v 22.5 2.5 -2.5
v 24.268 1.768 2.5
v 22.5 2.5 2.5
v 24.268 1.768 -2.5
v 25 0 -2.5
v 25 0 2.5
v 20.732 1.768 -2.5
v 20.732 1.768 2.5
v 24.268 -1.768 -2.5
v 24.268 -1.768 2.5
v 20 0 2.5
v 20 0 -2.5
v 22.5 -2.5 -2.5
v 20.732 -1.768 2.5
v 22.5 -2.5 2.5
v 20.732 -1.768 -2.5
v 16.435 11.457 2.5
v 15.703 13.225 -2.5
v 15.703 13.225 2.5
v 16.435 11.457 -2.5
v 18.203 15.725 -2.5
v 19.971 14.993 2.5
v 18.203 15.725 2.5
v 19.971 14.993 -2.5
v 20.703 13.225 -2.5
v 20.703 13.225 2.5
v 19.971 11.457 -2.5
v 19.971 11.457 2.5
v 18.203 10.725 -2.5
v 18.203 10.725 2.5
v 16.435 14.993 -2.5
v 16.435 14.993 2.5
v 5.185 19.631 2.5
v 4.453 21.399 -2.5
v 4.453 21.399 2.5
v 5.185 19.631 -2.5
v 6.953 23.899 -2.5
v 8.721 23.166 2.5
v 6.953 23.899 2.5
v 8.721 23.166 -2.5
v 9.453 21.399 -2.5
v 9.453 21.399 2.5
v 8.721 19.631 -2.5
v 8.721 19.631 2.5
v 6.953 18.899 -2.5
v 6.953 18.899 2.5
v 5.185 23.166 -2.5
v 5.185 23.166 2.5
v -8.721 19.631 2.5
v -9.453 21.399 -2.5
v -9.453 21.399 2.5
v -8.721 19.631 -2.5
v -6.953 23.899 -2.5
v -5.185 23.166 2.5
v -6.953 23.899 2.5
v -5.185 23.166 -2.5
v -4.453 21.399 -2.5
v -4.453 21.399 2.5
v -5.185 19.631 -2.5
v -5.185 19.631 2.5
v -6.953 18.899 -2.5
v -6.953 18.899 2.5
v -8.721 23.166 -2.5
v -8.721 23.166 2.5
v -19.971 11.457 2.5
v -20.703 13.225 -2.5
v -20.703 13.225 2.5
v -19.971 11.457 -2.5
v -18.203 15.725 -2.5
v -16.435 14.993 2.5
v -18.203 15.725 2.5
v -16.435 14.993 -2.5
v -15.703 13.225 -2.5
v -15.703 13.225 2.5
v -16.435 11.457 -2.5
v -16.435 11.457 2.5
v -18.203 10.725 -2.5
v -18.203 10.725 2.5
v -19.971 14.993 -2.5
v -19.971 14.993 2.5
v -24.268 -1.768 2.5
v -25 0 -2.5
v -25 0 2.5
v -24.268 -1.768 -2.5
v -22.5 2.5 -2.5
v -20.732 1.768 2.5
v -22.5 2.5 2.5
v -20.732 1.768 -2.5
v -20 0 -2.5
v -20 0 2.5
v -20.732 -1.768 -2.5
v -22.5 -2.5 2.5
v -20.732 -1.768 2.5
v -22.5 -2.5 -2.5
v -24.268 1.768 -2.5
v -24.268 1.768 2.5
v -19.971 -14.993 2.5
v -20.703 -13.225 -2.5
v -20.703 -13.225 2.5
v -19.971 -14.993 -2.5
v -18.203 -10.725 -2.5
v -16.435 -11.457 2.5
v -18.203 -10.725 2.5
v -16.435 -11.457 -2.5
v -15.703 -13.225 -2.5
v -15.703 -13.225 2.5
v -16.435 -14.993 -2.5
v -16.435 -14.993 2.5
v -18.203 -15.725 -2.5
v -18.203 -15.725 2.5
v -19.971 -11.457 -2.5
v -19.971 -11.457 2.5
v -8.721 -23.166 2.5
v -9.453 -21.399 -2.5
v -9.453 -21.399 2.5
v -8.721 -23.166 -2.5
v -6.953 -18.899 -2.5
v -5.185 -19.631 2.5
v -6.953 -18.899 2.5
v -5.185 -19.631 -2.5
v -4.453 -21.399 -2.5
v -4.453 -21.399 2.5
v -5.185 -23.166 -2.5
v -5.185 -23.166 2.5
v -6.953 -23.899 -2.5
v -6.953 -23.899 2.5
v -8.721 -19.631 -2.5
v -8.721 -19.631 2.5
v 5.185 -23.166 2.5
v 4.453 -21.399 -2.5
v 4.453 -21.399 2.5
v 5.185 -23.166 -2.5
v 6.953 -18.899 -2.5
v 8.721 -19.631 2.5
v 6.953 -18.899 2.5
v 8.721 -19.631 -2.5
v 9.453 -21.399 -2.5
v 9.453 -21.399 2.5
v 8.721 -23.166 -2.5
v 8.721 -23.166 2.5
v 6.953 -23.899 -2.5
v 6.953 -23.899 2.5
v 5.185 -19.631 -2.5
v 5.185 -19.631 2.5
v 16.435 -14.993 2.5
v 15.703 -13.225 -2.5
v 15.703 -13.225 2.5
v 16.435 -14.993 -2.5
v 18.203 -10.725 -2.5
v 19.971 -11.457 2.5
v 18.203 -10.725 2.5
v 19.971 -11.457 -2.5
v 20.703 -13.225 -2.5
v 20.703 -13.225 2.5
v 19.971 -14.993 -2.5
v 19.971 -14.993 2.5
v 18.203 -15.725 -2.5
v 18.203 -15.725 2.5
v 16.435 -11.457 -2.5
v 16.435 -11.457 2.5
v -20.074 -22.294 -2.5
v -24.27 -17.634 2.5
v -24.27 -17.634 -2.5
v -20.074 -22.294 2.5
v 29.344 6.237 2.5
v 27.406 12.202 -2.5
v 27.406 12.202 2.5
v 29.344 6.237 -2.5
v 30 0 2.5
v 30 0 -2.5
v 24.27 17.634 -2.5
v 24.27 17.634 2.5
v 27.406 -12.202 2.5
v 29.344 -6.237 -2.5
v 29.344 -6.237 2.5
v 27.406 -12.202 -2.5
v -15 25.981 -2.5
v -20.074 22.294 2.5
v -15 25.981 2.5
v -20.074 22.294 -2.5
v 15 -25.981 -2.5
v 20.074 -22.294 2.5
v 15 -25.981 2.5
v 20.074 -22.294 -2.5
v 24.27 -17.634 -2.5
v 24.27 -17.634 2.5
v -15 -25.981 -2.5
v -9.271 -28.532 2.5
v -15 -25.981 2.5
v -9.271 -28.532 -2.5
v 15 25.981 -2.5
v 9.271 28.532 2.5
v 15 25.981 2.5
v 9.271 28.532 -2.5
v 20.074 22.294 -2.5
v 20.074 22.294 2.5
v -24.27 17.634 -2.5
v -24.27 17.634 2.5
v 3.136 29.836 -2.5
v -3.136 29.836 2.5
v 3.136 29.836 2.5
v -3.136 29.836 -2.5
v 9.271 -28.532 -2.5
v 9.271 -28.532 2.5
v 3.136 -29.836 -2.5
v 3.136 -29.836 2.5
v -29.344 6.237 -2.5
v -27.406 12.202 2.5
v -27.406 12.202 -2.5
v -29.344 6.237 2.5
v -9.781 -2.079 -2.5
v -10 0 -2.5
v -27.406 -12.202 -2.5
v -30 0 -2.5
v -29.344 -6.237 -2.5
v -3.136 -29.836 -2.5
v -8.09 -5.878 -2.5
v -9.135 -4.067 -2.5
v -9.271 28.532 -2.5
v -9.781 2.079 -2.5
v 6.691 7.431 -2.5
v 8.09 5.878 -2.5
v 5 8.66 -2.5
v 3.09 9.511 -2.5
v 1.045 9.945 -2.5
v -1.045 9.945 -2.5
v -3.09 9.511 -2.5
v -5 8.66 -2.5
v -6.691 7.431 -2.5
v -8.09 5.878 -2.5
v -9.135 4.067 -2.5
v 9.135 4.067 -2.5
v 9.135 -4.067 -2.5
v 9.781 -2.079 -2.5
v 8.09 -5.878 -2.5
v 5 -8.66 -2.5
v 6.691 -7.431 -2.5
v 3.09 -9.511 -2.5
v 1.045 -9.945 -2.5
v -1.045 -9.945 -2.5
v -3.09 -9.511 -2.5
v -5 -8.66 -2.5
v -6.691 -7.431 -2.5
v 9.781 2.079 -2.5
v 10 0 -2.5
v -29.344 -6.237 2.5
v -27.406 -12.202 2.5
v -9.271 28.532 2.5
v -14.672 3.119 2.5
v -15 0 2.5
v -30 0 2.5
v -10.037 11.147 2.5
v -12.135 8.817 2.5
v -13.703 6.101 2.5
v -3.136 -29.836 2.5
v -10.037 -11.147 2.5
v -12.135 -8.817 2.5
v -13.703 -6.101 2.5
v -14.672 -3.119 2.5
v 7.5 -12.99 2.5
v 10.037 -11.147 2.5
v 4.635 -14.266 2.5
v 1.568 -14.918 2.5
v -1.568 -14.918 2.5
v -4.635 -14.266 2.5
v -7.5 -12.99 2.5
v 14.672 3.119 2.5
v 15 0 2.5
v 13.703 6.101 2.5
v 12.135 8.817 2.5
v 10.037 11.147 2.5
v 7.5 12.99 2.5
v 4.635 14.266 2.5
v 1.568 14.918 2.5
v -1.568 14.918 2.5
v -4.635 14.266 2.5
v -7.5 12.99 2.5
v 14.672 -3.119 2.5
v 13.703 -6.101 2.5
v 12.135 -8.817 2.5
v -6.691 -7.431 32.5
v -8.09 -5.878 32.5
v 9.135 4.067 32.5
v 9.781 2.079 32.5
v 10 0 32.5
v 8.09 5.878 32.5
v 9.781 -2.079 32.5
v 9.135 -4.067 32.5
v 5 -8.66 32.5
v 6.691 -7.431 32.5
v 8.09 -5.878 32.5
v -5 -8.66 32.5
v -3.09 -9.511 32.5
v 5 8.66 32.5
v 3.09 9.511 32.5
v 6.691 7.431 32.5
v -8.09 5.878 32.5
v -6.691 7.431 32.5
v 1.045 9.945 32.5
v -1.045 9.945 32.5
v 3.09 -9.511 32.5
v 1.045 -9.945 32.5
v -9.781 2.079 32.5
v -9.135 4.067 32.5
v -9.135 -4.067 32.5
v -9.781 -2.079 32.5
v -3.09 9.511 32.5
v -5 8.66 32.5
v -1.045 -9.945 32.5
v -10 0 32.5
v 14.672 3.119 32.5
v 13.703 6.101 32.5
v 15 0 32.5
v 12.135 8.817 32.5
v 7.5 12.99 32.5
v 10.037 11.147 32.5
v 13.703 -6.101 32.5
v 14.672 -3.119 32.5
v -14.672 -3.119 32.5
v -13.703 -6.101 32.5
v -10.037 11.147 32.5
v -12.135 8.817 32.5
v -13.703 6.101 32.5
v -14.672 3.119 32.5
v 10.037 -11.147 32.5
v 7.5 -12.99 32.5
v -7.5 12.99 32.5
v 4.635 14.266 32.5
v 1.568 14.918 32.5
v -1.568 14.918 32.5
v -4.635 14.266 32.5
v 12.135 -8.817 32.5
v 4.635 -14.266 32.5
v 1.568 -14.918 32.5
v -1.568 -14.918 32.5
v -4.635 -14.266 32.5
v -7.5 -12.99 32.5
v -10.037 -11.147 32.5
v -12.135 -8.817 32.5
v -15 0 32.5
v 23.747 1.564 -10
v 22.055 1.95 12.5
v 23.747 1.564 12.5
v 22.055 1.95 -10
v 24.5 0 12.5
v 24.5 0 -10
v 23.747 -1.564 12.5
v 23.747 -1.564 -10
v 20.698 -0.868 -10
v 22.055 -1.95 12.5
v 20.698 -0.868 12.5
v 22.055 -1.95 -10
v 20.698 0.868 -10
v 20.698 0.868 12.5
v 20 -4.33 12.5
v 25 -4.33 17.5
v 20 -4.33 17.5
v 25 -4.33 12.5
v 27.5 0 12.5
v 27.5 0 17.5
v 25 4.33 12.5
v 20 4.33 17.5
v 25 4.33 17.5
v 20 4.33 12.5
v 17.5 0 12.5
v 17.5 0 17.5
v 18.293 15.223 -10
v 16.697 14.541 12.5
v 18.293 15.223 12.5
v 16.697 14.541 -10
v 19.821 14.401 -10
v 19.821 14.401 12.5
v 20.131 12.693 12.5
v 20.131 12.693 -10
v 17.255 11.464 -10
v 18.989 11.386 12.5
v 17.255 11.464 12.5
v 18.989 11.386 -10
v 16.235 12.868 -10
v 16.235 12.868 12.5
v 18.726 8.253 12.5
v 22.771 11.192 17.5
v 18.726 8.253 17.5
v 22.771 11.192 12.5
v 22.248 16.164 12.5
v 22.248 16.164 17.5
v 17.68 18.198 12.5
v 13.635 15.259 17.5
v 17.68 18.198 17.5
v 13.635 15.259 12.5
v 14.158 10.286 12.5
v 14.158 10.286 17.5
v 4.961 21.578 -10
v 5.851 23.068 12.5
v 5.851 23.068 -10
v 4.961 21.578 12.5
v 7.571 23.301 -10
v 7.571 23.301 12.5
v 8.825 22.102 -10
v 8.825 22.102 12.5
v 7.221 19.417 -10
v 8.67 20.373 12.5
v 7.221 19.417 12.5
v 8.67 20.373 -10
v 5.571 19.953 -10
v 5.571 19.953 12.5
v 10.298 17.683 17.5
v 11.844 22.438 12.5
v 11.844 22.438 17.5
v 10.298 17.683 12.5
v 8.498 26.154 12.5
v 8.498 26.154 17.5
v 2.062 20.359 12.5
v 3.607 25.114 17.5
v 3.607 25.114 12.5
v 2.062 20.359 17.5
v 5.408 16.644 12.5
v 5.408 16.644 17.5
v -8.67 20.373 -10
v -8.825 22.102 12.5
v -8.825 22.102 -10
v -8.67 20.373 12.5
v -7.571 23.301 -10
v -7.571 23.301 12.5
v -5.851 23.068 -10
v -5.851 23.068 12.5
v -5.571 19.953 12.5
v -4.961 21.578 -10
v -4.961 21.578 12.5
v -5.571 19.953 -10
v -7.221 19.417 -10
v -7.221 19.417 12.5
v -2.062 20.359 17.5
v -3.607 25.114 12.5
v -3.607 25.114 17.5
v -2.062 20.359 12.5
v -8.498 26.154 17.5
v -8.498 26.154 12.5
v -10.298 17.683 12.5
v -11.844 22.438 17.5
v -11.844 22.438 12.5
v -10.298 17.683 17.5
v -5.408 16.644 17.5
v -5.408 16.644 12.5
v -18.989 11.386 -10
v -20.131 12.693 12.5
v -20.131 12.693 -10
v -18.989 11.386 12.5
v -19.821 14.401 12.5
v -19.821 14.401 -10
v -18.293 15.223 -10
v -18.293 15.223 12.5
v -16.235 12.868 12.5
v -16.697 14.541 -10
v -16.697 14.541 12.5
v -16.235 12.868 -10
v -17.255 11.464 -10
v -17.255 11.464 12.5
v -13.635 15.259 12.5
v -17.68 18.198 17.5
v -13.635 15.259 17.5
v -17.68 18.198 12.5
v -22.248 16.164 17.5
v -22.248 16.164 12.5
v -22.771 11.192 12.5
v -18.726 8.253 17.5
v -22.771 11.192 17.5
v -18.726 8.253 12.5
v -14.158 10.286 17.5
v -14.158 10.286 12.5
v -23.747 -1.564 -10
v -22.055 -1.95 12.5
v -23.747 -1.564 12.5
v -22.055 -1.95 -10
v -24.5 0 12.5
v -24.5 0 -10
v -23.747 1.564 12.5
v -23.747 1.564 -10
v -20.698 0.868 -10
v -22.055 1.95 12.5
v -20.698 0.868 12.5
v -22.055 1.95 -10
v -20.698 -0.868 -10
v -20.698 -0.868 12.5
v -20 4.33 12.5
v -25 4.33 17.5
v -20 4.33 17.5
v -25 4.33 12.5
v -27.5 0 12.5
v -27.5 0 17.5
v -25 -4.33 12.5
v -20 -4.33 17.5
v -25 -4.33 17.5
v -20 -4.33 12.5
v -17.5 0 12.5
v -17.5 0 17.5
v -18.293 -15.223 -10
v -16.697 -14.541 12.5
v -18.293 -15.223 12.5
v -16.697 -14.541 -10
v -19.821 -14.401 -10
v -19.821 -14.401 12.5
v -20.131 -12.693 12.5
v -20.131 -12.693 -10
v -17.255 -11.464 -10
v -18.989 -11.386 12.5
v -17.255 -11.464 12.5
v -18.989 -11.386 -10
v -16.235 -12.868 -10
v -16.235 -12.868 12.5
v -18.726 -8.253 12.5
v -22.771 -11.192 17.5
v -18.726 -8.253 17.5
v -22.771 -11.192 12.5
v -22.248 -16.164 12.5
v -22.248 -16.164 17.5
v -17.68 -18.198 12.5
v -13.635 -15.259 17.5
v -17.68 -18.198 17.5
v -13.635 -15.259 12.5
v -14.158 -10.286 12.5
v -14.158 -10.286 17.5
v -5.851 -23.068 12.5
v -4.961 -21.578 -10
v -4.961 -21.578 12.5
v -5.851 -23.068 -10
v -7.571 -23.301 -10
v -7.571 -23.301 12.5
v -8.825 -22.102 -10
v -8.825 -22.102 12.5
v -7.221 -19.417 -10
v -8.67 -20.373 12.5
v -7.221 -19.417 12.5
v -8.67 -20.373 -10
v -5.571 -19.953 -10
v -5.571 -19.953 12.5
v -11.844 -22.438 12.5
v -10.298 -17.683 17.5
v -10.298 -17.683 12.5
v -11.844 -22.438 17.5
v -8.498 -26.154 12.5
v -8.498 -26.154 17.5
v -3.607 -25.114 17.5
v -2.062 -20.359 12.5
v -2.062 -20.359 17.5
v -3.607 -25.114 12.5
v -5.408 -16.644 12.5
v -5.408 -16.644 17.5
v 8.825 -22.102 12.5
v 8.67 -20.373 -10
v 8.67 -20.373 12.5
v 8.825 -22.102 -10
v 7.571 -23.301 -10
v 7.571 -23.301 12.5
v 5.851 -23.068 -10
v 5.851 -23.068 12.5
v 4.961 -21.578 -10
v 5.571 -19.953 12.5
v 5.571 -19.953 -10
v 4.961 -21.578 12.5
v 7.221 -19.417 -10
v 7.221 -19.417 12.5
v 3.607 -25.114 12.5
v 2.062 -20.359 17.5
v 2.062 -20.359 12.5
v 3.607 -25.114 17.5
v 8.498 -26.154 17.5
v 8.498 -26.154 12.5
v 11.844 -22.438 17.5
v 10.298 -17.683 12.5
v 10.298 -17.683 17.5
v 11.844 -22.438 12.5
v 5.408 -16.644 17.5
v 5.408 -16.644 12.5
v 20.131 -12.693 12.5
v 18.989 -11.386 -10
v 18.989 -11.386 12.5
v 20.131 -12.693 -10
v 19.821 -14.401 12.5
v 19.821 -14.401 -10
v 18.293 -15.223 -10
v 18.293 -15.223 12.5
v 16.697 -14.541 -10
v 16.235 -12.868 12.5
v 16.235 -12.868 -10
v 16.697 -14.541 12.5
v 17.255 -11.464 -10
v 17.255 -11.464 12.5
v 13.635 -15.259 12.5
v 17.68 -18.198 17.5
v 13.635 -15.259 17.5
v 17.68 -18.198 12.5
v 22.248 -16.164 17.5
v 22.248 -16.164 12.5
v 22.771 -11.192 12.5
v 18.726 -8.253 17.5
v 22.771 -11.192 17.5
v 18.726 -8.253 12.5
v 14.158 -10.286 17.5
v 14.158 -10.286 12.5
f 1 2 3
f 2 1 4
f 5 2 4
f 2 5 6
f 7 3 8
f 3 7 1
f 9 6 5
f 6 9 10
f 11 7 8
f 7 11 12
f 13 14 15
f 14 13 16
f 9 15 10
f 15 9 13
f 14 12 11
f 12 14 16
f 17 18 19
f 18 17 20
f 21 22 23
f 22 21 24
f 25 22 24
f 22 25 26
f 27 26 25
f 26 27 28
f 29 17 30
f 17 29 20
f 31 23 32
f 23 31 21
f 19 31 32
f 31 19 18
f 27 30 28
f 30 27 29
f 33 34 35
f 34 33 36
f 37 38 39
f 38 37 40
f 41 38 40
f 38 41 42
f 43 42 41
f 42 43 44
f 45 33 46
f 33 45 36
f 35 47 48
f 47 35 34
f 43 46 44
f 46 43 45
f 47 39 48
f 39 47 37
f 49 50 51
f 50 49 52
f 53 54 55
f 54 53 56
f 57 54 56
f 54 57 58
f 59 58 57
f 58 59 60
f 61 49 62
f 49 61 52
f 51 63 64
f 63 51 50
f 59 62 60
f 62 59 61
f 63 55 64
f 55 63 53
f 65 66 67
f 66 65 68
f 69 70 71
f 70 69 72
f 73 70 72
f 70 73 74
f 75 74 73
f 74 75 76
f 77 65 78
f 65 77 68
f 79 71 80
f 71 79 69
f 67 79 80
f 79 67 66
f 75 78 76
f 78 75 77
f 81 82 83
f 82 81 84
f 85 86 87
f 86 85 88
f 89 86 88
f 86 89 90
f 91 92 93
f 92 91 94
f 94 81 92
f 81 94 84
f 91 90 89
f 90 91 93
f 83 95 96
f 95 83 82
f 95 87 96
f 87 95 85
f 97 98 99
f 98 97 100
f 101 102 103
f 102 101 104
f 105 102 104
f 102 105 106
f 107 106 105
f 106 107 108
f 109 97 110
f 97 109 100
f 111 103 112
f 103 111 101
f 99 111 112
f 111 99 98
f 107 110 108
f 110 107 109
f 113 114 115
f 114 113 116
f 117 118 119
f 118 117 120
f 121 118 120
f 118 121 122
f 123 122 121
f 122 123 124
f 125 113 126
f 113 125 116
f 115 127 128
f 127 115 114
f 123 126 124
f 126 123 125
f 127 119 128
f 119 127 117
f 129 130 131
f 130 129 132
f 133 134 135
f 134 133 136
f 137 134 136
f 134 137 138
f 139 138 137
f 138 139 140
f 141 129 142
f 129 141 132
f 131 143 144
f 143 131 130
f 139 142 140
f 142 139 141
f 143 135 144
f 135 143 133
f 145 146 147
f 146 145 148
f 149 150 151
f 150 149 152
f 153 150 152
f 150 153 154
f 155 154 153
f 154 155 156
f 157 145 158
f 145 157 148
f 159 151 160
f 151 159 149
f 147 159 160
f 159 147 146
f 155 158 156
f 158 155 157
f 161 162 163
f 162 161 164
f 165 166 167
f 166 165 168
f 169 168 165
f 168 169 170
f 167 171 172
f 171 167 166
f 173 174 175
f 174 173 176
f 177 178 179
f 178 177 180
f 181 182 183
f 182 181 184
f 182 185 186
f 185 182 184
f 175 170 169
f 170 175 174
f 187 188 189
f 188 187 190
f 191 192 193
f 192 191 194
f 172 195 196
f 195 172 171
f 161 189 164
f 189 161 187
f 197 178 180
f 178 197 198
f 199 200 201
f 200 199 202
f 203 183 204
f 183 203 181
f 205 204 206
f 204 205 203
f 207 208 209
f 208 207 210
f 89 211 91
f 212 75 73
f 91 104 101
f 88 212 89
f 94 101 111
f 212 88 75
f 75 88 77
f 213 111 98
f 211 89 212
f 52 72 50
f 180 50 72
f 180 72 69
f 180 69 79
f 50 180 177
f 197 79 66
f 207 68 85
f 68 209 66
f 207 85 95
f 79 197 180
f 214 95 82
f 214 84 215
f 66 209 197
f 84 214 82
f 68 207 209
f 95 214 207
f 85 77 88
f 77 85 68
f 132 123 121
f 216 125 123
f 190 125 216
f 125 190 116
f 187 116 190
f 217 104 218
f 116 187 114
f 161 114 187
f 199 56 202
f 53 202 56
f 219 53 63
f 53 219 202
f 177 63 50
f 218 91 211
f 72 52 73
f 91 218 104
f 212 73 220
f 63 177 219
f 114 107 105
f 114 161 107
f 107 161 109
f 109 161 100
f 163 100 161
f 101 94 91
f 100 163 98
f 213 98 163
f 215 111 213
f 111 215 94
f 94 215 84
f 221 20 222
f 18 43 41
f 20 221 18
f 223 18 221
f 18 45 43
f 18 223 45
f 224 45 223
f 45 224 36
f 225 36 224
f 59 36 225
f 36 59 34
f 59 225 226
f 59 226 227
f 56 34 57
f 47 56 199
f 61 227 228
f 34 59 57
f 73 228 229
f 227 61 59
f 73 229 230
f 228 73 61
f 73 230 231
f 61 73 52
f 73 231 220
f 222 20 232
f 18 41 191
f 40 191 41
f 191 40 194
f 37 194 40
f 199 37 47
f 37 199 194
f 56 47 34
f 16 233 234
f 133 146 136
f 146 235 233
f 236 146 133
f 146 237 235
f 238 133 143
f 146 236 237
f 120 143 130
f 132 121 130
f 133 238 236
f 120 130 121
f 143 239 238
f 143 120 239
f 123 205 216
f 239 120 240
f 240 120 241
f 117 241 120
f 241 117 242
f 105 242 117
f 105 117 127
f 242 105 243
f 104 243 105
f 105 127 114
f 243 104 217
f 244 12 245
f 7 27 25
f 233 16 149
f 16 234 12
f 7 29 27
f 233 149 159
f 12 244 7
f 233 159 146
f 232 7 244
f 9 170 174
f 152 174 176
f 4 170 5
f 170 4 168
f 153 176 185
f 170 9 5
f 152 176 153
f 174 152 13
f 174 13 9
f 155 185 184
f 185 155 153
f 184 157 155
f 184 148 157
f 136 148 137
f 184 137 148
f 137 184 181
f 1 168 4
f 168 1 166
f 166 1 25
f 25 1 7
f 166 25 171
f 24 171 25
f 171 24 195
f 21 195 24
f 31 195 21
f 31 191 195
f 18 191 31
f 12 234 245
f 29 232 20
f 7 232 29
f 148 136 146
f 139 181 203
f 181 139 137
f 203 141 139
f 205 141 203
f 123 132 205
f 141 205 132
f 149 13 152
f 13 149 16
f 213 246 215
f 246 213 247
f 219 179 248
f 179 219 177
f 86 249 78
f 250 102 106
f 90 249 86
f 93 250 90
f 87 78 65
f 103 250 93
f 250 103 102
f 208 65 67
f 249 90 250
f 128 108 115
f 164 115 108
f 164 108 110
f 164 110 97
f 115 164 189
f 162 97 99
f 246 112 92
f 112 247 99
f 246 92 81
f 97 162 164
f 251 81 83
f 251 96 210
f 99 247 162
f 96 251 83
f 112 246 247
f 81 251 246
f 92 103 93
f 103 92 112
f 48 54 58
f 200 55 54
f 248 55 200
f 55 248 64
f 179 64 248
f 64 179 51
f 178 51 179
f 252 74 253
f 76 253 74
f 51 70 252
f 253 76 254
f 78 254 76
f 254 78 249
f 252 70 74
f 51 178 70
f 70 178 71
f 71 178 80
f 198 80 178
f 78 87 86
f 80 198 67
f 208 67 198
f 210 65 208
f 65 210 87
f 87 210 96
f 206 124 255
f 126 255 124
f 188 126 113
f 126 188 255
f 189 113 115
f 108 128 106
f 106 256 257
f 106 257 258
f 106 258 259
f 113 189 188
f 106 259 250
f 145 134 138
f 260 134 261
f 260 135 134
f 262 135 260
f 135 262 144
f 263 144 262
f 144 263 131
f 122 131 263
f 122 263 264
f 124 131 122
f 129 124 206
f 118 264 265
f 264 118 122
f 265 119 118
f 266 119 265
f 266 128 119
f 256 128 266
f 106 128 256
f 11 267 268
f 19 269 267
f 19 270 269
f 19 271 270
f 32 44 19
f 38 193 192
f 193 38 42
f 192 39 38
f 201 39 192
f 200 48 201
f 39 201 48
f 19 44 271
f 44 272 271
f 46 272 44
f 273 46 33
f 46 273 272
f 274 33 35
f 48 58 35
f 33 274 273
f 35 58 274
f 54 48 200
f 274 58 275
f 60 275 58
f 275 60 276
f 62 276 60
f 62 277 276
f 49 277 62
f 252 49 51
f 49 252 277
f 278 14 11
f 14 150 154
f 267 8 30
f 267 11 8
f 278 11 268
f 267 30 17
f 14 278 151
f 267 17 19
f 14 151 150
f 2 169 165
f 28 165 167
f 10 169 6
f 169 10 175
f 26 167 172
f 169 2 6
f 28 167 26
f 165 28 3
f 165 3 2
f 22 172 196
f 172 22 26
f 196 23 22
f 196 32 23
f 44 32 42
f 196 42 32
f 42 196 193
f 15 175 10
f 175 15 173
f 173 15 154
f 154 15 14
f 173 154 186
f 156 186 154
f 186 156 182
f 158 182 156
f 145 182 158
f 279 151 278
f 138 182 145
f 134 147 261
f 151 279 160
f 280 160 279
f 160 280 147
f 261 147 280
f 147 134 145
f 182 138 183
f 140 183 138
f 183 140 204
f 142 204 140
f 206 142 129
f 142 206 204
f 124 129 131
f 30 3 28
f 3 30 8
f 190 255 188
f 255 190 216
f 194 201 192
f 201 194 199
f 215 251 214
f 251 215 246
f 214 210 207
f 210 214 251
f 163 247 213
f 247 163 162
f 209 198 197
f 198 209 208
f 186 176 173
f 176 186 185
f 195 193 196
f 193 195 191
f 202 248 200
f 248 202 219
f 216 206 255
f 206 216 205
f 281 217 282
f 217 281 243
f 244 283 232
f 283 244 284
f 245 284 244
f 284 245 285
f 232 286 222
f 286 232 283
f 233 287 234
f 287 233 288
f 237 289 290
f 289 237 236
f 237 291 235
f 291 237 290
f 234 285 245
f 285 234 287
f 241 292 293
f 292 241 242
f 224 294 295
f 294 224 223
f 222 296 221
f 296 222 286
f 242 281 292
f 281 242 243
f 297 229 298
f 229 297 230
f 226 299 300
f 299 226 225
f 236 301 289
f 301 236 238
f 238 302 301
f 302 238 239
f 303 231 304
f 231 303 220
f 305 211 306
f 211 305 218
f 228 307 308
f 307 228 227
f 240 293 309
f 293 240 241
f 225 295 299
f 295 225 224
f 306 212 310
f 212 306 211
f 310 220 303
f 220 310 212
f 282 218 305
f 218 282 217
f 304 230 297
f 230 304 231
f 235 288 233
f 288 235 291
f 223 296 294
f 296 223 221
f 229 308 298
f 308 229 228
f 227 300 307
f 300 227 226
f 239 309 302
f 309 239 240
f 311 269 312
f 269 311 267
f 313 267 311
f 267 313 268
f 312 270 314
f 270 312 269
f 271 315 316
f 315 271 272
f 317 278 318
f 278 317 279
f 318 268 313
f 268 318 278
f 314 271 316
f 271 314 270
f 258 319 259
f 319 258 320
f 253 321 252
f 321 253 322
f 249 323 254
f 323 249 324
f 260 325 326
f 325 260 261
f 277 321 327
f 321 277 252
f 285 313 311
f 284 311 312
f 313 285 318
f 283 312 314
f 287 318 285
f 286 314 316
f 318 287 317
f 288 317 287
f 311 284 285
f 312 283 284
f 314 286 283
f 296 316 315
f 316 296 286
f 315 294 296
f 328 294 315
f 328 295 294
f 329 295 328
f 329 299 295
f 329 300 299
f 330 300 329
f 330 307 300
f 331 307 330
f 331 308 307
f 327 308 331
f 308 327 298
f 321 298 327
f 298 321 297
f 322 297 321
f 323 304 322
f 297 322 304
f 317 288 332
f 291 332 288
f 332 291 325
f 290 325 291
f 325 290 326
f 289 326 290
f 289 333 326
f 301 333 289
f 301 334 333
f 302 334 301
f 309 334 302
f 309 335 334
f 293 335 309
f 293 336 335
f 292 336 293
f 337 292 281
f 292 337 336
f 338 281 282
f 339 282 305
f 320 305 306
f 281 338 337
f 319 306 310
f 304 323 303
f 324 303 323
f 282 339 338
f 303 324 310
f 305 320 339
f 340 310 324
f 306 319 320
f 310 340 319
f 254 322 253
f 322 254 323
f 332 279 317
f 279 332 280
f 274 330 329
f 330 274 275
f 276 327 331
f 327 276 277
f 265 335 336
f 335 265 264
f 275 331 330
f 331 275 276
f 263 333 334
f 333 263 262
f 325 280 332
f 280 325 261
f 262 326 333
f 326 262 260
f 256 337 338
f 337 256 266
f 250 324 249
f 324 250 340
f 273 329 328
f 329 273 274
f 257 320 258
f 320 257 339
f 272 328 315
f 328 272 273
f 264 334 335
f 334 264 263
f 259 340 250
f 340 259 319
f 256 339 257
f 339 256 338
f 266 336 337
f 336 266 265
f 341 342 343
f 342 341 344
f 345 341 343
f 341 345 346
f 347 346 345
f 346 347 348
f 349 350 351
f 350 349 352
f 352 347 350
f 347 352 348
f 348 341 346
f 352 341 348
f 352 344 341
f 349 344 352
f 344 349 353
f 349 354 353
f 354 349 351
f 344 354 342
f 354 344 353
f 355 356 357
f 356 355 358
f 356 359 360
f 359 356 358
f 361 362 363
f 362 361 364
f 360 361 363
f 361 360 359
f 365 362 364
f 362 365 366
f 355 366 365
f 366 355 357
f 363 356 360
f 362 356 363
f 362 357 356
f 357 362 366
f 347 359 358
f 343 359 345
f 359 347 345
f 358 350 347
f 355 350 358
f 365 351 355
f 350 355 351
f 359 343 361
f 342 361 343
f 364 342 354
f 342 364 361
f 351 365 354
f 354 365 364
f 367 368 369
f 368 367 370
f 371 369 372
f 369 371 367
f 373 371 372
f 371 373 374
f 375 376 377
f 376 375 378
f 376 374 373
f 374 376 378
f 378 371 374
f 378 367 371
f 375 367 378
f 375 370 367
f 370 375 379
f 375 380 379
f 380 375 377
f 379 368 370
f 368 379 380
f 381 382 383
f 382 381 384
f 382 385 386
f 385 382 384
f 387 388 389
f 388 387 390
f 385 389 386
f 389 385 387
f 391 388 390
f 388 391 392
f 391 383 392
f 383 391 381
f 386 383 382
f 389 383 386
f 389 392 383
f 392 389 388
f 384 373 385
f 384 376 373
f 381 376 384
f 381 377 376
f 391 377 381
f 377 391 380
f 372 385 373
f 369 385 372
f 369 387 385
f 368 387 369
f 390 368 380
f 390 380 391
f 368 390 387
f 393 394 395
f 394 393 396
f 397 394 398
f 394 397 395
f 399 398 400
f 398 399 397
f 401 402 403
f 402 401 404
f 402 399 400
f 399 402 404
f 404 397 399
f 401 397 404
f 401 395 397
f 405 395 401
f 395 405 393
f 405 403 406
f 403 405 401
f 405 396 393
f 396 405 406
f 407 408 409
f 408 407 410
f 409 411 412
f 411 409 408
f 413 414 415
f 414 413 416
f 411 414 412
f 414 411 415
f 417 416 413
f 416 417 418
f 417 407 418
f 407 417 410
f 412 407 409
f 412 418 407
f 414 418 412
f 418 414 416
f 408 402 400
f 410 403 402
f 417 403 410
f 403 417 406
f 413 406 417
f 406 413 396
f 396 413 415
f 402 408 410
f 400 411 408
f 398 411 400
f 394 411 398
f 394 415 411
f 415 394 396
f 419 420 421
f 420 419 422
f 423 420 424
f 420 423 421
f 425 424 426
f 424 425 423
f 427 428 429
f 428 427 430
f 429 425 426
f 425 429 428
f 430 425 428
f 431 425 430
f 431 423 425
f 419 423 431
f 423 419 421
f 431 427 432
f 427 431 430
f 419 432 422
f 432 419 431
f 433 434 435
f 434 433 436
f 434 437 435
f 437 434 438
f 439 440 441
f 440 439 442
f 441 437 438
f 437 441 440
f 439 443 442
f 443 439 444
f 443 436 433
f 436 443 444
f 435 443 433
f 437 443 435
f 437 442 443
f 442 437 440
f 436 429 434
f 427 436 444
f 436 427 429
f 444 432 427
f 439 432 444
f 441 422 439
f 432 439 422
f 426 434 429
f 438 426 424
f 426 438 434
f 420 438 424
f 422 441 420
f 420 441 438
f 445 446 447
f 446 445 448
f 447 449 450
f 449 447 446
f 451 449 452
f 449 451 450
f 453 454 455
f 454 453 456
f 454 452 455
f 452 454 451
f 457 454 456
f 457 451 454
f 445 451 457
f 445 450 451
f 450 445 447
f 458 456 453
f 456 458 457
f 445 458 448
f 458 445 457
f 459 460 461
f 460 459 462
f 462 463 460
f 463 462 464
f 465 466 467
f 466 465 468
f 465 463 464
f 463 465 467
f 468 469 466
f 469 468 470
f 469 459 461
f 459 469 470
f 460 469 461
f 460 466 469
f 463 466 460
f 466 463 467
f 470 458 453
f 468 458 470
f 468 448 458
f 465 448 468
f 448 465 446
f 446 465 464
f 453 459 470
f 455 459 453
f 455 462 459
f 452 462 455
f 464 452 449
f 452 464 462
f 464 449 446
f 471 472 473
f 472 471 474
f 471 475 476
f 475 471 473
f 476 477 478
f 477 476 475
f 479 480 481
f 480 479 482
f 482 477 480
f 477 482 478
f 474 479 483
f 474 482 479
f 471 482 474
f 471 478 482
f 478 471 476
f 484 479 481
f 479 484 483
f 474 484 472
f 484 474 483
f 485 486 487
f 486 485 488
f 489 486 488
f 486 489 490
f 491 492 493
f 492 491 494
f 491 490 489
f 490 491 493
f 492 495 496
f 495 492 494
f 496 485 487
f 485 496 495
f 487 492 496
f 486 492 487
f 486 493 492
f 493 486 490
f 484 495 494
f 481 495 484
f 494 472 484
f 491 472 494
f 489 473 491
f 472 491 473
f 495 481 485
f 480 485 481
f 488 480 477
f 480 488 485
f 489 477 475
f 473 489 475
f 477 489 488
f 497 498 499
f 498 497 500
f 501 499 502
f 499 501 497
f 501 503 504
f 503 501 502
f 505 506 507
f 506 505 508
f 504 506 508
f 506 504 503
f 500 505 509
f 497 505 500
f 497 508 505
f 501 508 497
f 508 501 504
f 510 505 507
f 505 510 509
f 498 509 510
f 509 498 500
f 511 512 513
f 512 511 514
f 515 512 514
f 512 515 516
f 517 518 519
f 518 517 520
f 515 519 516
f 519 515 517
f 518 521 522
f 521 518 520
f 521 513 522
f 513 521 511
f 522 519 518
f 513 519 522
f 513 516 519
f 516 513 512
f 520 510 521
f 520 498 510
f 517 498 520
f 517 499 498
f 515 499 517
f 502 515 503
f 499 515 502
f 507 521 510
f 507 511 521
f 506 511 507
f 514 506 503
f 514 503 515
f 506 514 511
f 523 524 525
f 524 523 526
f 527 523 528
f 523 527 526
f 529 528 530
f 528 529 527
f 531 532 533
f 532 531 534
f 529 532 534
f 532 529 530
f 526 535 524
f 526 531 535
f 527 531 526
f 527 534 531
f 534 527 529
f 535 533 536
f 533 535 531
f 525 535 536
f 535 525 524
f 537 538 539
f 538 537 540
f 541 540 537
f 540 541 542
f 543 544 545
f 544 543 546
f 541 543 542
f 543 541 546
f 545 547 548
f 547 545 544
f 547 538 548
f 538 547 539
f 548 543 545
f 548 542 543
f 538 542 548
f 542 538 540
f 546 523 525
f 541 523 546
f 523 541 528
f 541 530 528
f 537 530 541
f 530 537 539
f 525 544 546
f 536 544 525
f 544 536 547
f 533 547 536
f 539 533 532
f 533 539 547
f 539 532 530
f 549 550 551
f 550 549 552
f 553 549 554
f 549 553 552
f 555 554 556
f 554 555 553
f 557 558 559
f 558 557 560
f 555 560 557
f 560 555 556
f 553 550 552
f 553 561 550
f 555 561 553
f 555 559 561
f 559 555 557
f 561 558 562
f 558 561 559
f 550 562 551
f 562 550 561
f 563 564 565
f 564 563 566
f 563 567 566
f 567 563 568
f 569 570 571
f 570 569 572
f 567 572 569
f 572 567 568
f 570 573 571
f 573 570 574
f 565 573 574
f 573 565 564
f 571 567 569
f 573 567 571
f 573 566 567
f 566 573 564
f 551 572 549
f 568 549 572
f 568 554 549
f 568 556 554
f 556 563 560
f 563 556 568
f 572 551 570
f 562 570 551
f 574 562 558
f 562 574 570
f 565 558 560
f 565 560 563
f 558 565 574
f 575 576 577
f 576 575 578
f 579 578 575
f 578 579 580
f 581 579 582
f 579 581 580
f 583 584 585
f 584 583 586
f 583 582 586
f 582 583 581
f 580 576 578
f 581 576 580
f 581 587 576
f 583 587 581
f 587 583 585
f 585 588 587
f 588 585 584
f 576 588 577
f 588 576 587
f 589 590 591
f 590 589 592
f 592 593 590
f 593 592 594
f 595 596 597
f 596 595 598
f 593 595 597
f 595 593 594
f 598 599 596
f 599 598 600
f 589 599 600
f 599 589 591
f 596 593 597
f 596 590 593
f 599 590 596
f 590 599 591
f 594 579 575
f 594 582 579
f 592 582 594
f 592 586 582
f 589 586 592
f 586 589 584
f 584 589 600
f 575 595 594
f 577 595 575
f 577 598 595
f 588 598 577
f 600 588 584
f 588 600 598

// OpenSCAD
// Parameters
flange_diameter = 60;
flange_thickness = 5;
hub_diameter = 30;
hub_length = 30; // Adjusted hub height to match the original model
bore_diameter = 20; // Adjusted bore size to match the original model
bolt_hole_diameter = 5;
bolt_count = 10; // Increased bolt count to match the original model
bolt_length = 25; // Increased bolt length to match the original model
bolt_diameter = 4;
nut_diameter = 10; // Adjusted nut size to match the original model
nut_thickness = 5;
bolt_circle_diameter = 45; // Adjusted bolt circle diameter to match the original model

// Module for the flange
module flange() {
    difference() {
        cylinder(d=flange_diameter, h=flange_thickness, center=true);
        cylinder(d=bore_diameter, h=flange_thickness + 2, center=true);
        for (i = [0:bolt_count-1]) {
            angle = i * 360 / bolt_count;
            x = bolt_circle_diameter / 2 * cos(angle);
            y = bolt_circle_diameter / 2 * sin(angle);
            translate([x, y, 0])
                cylinder(d=bolt_hole_diameter, h=flange_thickness + 2, center=true);
        }
    }
}

// Module for the hub
module hub() {
    difference() {
        cylinder(d=hub_diameter, h=hub_length, center=true);
        cylinder(d=bore_diameter, h=hub_length + 2, center=true);
    }
}

// Module for a single bolt
module bolt() {
    union() {
        cylinder(d=bolt_diameter, h=bolt_length, center=true);
        translate([0, 0, bolt_length/2])
            cylinder(d=nut_diameter, h=nut_thickness, center=true, $fn=6);
    }
}

// Module for assembling the coupling
module coupling() {
    flange();
    translate([0, 0, flange_thickness/2 + hub_length/2])
        hub();
    for (i = [0:bolt_count-1]) {
        angle = i * 360 / bolt_count;
        x = bolt_circle_diameter / 2 * cos(angle);
        y = bolt_circle_diameter / 2 * sin(angle);
        translate([x, y, flange_thickness/2])
            rotate([0, 0, angle])
                bolt();
    }
}

// Render the coupling
coupling();
